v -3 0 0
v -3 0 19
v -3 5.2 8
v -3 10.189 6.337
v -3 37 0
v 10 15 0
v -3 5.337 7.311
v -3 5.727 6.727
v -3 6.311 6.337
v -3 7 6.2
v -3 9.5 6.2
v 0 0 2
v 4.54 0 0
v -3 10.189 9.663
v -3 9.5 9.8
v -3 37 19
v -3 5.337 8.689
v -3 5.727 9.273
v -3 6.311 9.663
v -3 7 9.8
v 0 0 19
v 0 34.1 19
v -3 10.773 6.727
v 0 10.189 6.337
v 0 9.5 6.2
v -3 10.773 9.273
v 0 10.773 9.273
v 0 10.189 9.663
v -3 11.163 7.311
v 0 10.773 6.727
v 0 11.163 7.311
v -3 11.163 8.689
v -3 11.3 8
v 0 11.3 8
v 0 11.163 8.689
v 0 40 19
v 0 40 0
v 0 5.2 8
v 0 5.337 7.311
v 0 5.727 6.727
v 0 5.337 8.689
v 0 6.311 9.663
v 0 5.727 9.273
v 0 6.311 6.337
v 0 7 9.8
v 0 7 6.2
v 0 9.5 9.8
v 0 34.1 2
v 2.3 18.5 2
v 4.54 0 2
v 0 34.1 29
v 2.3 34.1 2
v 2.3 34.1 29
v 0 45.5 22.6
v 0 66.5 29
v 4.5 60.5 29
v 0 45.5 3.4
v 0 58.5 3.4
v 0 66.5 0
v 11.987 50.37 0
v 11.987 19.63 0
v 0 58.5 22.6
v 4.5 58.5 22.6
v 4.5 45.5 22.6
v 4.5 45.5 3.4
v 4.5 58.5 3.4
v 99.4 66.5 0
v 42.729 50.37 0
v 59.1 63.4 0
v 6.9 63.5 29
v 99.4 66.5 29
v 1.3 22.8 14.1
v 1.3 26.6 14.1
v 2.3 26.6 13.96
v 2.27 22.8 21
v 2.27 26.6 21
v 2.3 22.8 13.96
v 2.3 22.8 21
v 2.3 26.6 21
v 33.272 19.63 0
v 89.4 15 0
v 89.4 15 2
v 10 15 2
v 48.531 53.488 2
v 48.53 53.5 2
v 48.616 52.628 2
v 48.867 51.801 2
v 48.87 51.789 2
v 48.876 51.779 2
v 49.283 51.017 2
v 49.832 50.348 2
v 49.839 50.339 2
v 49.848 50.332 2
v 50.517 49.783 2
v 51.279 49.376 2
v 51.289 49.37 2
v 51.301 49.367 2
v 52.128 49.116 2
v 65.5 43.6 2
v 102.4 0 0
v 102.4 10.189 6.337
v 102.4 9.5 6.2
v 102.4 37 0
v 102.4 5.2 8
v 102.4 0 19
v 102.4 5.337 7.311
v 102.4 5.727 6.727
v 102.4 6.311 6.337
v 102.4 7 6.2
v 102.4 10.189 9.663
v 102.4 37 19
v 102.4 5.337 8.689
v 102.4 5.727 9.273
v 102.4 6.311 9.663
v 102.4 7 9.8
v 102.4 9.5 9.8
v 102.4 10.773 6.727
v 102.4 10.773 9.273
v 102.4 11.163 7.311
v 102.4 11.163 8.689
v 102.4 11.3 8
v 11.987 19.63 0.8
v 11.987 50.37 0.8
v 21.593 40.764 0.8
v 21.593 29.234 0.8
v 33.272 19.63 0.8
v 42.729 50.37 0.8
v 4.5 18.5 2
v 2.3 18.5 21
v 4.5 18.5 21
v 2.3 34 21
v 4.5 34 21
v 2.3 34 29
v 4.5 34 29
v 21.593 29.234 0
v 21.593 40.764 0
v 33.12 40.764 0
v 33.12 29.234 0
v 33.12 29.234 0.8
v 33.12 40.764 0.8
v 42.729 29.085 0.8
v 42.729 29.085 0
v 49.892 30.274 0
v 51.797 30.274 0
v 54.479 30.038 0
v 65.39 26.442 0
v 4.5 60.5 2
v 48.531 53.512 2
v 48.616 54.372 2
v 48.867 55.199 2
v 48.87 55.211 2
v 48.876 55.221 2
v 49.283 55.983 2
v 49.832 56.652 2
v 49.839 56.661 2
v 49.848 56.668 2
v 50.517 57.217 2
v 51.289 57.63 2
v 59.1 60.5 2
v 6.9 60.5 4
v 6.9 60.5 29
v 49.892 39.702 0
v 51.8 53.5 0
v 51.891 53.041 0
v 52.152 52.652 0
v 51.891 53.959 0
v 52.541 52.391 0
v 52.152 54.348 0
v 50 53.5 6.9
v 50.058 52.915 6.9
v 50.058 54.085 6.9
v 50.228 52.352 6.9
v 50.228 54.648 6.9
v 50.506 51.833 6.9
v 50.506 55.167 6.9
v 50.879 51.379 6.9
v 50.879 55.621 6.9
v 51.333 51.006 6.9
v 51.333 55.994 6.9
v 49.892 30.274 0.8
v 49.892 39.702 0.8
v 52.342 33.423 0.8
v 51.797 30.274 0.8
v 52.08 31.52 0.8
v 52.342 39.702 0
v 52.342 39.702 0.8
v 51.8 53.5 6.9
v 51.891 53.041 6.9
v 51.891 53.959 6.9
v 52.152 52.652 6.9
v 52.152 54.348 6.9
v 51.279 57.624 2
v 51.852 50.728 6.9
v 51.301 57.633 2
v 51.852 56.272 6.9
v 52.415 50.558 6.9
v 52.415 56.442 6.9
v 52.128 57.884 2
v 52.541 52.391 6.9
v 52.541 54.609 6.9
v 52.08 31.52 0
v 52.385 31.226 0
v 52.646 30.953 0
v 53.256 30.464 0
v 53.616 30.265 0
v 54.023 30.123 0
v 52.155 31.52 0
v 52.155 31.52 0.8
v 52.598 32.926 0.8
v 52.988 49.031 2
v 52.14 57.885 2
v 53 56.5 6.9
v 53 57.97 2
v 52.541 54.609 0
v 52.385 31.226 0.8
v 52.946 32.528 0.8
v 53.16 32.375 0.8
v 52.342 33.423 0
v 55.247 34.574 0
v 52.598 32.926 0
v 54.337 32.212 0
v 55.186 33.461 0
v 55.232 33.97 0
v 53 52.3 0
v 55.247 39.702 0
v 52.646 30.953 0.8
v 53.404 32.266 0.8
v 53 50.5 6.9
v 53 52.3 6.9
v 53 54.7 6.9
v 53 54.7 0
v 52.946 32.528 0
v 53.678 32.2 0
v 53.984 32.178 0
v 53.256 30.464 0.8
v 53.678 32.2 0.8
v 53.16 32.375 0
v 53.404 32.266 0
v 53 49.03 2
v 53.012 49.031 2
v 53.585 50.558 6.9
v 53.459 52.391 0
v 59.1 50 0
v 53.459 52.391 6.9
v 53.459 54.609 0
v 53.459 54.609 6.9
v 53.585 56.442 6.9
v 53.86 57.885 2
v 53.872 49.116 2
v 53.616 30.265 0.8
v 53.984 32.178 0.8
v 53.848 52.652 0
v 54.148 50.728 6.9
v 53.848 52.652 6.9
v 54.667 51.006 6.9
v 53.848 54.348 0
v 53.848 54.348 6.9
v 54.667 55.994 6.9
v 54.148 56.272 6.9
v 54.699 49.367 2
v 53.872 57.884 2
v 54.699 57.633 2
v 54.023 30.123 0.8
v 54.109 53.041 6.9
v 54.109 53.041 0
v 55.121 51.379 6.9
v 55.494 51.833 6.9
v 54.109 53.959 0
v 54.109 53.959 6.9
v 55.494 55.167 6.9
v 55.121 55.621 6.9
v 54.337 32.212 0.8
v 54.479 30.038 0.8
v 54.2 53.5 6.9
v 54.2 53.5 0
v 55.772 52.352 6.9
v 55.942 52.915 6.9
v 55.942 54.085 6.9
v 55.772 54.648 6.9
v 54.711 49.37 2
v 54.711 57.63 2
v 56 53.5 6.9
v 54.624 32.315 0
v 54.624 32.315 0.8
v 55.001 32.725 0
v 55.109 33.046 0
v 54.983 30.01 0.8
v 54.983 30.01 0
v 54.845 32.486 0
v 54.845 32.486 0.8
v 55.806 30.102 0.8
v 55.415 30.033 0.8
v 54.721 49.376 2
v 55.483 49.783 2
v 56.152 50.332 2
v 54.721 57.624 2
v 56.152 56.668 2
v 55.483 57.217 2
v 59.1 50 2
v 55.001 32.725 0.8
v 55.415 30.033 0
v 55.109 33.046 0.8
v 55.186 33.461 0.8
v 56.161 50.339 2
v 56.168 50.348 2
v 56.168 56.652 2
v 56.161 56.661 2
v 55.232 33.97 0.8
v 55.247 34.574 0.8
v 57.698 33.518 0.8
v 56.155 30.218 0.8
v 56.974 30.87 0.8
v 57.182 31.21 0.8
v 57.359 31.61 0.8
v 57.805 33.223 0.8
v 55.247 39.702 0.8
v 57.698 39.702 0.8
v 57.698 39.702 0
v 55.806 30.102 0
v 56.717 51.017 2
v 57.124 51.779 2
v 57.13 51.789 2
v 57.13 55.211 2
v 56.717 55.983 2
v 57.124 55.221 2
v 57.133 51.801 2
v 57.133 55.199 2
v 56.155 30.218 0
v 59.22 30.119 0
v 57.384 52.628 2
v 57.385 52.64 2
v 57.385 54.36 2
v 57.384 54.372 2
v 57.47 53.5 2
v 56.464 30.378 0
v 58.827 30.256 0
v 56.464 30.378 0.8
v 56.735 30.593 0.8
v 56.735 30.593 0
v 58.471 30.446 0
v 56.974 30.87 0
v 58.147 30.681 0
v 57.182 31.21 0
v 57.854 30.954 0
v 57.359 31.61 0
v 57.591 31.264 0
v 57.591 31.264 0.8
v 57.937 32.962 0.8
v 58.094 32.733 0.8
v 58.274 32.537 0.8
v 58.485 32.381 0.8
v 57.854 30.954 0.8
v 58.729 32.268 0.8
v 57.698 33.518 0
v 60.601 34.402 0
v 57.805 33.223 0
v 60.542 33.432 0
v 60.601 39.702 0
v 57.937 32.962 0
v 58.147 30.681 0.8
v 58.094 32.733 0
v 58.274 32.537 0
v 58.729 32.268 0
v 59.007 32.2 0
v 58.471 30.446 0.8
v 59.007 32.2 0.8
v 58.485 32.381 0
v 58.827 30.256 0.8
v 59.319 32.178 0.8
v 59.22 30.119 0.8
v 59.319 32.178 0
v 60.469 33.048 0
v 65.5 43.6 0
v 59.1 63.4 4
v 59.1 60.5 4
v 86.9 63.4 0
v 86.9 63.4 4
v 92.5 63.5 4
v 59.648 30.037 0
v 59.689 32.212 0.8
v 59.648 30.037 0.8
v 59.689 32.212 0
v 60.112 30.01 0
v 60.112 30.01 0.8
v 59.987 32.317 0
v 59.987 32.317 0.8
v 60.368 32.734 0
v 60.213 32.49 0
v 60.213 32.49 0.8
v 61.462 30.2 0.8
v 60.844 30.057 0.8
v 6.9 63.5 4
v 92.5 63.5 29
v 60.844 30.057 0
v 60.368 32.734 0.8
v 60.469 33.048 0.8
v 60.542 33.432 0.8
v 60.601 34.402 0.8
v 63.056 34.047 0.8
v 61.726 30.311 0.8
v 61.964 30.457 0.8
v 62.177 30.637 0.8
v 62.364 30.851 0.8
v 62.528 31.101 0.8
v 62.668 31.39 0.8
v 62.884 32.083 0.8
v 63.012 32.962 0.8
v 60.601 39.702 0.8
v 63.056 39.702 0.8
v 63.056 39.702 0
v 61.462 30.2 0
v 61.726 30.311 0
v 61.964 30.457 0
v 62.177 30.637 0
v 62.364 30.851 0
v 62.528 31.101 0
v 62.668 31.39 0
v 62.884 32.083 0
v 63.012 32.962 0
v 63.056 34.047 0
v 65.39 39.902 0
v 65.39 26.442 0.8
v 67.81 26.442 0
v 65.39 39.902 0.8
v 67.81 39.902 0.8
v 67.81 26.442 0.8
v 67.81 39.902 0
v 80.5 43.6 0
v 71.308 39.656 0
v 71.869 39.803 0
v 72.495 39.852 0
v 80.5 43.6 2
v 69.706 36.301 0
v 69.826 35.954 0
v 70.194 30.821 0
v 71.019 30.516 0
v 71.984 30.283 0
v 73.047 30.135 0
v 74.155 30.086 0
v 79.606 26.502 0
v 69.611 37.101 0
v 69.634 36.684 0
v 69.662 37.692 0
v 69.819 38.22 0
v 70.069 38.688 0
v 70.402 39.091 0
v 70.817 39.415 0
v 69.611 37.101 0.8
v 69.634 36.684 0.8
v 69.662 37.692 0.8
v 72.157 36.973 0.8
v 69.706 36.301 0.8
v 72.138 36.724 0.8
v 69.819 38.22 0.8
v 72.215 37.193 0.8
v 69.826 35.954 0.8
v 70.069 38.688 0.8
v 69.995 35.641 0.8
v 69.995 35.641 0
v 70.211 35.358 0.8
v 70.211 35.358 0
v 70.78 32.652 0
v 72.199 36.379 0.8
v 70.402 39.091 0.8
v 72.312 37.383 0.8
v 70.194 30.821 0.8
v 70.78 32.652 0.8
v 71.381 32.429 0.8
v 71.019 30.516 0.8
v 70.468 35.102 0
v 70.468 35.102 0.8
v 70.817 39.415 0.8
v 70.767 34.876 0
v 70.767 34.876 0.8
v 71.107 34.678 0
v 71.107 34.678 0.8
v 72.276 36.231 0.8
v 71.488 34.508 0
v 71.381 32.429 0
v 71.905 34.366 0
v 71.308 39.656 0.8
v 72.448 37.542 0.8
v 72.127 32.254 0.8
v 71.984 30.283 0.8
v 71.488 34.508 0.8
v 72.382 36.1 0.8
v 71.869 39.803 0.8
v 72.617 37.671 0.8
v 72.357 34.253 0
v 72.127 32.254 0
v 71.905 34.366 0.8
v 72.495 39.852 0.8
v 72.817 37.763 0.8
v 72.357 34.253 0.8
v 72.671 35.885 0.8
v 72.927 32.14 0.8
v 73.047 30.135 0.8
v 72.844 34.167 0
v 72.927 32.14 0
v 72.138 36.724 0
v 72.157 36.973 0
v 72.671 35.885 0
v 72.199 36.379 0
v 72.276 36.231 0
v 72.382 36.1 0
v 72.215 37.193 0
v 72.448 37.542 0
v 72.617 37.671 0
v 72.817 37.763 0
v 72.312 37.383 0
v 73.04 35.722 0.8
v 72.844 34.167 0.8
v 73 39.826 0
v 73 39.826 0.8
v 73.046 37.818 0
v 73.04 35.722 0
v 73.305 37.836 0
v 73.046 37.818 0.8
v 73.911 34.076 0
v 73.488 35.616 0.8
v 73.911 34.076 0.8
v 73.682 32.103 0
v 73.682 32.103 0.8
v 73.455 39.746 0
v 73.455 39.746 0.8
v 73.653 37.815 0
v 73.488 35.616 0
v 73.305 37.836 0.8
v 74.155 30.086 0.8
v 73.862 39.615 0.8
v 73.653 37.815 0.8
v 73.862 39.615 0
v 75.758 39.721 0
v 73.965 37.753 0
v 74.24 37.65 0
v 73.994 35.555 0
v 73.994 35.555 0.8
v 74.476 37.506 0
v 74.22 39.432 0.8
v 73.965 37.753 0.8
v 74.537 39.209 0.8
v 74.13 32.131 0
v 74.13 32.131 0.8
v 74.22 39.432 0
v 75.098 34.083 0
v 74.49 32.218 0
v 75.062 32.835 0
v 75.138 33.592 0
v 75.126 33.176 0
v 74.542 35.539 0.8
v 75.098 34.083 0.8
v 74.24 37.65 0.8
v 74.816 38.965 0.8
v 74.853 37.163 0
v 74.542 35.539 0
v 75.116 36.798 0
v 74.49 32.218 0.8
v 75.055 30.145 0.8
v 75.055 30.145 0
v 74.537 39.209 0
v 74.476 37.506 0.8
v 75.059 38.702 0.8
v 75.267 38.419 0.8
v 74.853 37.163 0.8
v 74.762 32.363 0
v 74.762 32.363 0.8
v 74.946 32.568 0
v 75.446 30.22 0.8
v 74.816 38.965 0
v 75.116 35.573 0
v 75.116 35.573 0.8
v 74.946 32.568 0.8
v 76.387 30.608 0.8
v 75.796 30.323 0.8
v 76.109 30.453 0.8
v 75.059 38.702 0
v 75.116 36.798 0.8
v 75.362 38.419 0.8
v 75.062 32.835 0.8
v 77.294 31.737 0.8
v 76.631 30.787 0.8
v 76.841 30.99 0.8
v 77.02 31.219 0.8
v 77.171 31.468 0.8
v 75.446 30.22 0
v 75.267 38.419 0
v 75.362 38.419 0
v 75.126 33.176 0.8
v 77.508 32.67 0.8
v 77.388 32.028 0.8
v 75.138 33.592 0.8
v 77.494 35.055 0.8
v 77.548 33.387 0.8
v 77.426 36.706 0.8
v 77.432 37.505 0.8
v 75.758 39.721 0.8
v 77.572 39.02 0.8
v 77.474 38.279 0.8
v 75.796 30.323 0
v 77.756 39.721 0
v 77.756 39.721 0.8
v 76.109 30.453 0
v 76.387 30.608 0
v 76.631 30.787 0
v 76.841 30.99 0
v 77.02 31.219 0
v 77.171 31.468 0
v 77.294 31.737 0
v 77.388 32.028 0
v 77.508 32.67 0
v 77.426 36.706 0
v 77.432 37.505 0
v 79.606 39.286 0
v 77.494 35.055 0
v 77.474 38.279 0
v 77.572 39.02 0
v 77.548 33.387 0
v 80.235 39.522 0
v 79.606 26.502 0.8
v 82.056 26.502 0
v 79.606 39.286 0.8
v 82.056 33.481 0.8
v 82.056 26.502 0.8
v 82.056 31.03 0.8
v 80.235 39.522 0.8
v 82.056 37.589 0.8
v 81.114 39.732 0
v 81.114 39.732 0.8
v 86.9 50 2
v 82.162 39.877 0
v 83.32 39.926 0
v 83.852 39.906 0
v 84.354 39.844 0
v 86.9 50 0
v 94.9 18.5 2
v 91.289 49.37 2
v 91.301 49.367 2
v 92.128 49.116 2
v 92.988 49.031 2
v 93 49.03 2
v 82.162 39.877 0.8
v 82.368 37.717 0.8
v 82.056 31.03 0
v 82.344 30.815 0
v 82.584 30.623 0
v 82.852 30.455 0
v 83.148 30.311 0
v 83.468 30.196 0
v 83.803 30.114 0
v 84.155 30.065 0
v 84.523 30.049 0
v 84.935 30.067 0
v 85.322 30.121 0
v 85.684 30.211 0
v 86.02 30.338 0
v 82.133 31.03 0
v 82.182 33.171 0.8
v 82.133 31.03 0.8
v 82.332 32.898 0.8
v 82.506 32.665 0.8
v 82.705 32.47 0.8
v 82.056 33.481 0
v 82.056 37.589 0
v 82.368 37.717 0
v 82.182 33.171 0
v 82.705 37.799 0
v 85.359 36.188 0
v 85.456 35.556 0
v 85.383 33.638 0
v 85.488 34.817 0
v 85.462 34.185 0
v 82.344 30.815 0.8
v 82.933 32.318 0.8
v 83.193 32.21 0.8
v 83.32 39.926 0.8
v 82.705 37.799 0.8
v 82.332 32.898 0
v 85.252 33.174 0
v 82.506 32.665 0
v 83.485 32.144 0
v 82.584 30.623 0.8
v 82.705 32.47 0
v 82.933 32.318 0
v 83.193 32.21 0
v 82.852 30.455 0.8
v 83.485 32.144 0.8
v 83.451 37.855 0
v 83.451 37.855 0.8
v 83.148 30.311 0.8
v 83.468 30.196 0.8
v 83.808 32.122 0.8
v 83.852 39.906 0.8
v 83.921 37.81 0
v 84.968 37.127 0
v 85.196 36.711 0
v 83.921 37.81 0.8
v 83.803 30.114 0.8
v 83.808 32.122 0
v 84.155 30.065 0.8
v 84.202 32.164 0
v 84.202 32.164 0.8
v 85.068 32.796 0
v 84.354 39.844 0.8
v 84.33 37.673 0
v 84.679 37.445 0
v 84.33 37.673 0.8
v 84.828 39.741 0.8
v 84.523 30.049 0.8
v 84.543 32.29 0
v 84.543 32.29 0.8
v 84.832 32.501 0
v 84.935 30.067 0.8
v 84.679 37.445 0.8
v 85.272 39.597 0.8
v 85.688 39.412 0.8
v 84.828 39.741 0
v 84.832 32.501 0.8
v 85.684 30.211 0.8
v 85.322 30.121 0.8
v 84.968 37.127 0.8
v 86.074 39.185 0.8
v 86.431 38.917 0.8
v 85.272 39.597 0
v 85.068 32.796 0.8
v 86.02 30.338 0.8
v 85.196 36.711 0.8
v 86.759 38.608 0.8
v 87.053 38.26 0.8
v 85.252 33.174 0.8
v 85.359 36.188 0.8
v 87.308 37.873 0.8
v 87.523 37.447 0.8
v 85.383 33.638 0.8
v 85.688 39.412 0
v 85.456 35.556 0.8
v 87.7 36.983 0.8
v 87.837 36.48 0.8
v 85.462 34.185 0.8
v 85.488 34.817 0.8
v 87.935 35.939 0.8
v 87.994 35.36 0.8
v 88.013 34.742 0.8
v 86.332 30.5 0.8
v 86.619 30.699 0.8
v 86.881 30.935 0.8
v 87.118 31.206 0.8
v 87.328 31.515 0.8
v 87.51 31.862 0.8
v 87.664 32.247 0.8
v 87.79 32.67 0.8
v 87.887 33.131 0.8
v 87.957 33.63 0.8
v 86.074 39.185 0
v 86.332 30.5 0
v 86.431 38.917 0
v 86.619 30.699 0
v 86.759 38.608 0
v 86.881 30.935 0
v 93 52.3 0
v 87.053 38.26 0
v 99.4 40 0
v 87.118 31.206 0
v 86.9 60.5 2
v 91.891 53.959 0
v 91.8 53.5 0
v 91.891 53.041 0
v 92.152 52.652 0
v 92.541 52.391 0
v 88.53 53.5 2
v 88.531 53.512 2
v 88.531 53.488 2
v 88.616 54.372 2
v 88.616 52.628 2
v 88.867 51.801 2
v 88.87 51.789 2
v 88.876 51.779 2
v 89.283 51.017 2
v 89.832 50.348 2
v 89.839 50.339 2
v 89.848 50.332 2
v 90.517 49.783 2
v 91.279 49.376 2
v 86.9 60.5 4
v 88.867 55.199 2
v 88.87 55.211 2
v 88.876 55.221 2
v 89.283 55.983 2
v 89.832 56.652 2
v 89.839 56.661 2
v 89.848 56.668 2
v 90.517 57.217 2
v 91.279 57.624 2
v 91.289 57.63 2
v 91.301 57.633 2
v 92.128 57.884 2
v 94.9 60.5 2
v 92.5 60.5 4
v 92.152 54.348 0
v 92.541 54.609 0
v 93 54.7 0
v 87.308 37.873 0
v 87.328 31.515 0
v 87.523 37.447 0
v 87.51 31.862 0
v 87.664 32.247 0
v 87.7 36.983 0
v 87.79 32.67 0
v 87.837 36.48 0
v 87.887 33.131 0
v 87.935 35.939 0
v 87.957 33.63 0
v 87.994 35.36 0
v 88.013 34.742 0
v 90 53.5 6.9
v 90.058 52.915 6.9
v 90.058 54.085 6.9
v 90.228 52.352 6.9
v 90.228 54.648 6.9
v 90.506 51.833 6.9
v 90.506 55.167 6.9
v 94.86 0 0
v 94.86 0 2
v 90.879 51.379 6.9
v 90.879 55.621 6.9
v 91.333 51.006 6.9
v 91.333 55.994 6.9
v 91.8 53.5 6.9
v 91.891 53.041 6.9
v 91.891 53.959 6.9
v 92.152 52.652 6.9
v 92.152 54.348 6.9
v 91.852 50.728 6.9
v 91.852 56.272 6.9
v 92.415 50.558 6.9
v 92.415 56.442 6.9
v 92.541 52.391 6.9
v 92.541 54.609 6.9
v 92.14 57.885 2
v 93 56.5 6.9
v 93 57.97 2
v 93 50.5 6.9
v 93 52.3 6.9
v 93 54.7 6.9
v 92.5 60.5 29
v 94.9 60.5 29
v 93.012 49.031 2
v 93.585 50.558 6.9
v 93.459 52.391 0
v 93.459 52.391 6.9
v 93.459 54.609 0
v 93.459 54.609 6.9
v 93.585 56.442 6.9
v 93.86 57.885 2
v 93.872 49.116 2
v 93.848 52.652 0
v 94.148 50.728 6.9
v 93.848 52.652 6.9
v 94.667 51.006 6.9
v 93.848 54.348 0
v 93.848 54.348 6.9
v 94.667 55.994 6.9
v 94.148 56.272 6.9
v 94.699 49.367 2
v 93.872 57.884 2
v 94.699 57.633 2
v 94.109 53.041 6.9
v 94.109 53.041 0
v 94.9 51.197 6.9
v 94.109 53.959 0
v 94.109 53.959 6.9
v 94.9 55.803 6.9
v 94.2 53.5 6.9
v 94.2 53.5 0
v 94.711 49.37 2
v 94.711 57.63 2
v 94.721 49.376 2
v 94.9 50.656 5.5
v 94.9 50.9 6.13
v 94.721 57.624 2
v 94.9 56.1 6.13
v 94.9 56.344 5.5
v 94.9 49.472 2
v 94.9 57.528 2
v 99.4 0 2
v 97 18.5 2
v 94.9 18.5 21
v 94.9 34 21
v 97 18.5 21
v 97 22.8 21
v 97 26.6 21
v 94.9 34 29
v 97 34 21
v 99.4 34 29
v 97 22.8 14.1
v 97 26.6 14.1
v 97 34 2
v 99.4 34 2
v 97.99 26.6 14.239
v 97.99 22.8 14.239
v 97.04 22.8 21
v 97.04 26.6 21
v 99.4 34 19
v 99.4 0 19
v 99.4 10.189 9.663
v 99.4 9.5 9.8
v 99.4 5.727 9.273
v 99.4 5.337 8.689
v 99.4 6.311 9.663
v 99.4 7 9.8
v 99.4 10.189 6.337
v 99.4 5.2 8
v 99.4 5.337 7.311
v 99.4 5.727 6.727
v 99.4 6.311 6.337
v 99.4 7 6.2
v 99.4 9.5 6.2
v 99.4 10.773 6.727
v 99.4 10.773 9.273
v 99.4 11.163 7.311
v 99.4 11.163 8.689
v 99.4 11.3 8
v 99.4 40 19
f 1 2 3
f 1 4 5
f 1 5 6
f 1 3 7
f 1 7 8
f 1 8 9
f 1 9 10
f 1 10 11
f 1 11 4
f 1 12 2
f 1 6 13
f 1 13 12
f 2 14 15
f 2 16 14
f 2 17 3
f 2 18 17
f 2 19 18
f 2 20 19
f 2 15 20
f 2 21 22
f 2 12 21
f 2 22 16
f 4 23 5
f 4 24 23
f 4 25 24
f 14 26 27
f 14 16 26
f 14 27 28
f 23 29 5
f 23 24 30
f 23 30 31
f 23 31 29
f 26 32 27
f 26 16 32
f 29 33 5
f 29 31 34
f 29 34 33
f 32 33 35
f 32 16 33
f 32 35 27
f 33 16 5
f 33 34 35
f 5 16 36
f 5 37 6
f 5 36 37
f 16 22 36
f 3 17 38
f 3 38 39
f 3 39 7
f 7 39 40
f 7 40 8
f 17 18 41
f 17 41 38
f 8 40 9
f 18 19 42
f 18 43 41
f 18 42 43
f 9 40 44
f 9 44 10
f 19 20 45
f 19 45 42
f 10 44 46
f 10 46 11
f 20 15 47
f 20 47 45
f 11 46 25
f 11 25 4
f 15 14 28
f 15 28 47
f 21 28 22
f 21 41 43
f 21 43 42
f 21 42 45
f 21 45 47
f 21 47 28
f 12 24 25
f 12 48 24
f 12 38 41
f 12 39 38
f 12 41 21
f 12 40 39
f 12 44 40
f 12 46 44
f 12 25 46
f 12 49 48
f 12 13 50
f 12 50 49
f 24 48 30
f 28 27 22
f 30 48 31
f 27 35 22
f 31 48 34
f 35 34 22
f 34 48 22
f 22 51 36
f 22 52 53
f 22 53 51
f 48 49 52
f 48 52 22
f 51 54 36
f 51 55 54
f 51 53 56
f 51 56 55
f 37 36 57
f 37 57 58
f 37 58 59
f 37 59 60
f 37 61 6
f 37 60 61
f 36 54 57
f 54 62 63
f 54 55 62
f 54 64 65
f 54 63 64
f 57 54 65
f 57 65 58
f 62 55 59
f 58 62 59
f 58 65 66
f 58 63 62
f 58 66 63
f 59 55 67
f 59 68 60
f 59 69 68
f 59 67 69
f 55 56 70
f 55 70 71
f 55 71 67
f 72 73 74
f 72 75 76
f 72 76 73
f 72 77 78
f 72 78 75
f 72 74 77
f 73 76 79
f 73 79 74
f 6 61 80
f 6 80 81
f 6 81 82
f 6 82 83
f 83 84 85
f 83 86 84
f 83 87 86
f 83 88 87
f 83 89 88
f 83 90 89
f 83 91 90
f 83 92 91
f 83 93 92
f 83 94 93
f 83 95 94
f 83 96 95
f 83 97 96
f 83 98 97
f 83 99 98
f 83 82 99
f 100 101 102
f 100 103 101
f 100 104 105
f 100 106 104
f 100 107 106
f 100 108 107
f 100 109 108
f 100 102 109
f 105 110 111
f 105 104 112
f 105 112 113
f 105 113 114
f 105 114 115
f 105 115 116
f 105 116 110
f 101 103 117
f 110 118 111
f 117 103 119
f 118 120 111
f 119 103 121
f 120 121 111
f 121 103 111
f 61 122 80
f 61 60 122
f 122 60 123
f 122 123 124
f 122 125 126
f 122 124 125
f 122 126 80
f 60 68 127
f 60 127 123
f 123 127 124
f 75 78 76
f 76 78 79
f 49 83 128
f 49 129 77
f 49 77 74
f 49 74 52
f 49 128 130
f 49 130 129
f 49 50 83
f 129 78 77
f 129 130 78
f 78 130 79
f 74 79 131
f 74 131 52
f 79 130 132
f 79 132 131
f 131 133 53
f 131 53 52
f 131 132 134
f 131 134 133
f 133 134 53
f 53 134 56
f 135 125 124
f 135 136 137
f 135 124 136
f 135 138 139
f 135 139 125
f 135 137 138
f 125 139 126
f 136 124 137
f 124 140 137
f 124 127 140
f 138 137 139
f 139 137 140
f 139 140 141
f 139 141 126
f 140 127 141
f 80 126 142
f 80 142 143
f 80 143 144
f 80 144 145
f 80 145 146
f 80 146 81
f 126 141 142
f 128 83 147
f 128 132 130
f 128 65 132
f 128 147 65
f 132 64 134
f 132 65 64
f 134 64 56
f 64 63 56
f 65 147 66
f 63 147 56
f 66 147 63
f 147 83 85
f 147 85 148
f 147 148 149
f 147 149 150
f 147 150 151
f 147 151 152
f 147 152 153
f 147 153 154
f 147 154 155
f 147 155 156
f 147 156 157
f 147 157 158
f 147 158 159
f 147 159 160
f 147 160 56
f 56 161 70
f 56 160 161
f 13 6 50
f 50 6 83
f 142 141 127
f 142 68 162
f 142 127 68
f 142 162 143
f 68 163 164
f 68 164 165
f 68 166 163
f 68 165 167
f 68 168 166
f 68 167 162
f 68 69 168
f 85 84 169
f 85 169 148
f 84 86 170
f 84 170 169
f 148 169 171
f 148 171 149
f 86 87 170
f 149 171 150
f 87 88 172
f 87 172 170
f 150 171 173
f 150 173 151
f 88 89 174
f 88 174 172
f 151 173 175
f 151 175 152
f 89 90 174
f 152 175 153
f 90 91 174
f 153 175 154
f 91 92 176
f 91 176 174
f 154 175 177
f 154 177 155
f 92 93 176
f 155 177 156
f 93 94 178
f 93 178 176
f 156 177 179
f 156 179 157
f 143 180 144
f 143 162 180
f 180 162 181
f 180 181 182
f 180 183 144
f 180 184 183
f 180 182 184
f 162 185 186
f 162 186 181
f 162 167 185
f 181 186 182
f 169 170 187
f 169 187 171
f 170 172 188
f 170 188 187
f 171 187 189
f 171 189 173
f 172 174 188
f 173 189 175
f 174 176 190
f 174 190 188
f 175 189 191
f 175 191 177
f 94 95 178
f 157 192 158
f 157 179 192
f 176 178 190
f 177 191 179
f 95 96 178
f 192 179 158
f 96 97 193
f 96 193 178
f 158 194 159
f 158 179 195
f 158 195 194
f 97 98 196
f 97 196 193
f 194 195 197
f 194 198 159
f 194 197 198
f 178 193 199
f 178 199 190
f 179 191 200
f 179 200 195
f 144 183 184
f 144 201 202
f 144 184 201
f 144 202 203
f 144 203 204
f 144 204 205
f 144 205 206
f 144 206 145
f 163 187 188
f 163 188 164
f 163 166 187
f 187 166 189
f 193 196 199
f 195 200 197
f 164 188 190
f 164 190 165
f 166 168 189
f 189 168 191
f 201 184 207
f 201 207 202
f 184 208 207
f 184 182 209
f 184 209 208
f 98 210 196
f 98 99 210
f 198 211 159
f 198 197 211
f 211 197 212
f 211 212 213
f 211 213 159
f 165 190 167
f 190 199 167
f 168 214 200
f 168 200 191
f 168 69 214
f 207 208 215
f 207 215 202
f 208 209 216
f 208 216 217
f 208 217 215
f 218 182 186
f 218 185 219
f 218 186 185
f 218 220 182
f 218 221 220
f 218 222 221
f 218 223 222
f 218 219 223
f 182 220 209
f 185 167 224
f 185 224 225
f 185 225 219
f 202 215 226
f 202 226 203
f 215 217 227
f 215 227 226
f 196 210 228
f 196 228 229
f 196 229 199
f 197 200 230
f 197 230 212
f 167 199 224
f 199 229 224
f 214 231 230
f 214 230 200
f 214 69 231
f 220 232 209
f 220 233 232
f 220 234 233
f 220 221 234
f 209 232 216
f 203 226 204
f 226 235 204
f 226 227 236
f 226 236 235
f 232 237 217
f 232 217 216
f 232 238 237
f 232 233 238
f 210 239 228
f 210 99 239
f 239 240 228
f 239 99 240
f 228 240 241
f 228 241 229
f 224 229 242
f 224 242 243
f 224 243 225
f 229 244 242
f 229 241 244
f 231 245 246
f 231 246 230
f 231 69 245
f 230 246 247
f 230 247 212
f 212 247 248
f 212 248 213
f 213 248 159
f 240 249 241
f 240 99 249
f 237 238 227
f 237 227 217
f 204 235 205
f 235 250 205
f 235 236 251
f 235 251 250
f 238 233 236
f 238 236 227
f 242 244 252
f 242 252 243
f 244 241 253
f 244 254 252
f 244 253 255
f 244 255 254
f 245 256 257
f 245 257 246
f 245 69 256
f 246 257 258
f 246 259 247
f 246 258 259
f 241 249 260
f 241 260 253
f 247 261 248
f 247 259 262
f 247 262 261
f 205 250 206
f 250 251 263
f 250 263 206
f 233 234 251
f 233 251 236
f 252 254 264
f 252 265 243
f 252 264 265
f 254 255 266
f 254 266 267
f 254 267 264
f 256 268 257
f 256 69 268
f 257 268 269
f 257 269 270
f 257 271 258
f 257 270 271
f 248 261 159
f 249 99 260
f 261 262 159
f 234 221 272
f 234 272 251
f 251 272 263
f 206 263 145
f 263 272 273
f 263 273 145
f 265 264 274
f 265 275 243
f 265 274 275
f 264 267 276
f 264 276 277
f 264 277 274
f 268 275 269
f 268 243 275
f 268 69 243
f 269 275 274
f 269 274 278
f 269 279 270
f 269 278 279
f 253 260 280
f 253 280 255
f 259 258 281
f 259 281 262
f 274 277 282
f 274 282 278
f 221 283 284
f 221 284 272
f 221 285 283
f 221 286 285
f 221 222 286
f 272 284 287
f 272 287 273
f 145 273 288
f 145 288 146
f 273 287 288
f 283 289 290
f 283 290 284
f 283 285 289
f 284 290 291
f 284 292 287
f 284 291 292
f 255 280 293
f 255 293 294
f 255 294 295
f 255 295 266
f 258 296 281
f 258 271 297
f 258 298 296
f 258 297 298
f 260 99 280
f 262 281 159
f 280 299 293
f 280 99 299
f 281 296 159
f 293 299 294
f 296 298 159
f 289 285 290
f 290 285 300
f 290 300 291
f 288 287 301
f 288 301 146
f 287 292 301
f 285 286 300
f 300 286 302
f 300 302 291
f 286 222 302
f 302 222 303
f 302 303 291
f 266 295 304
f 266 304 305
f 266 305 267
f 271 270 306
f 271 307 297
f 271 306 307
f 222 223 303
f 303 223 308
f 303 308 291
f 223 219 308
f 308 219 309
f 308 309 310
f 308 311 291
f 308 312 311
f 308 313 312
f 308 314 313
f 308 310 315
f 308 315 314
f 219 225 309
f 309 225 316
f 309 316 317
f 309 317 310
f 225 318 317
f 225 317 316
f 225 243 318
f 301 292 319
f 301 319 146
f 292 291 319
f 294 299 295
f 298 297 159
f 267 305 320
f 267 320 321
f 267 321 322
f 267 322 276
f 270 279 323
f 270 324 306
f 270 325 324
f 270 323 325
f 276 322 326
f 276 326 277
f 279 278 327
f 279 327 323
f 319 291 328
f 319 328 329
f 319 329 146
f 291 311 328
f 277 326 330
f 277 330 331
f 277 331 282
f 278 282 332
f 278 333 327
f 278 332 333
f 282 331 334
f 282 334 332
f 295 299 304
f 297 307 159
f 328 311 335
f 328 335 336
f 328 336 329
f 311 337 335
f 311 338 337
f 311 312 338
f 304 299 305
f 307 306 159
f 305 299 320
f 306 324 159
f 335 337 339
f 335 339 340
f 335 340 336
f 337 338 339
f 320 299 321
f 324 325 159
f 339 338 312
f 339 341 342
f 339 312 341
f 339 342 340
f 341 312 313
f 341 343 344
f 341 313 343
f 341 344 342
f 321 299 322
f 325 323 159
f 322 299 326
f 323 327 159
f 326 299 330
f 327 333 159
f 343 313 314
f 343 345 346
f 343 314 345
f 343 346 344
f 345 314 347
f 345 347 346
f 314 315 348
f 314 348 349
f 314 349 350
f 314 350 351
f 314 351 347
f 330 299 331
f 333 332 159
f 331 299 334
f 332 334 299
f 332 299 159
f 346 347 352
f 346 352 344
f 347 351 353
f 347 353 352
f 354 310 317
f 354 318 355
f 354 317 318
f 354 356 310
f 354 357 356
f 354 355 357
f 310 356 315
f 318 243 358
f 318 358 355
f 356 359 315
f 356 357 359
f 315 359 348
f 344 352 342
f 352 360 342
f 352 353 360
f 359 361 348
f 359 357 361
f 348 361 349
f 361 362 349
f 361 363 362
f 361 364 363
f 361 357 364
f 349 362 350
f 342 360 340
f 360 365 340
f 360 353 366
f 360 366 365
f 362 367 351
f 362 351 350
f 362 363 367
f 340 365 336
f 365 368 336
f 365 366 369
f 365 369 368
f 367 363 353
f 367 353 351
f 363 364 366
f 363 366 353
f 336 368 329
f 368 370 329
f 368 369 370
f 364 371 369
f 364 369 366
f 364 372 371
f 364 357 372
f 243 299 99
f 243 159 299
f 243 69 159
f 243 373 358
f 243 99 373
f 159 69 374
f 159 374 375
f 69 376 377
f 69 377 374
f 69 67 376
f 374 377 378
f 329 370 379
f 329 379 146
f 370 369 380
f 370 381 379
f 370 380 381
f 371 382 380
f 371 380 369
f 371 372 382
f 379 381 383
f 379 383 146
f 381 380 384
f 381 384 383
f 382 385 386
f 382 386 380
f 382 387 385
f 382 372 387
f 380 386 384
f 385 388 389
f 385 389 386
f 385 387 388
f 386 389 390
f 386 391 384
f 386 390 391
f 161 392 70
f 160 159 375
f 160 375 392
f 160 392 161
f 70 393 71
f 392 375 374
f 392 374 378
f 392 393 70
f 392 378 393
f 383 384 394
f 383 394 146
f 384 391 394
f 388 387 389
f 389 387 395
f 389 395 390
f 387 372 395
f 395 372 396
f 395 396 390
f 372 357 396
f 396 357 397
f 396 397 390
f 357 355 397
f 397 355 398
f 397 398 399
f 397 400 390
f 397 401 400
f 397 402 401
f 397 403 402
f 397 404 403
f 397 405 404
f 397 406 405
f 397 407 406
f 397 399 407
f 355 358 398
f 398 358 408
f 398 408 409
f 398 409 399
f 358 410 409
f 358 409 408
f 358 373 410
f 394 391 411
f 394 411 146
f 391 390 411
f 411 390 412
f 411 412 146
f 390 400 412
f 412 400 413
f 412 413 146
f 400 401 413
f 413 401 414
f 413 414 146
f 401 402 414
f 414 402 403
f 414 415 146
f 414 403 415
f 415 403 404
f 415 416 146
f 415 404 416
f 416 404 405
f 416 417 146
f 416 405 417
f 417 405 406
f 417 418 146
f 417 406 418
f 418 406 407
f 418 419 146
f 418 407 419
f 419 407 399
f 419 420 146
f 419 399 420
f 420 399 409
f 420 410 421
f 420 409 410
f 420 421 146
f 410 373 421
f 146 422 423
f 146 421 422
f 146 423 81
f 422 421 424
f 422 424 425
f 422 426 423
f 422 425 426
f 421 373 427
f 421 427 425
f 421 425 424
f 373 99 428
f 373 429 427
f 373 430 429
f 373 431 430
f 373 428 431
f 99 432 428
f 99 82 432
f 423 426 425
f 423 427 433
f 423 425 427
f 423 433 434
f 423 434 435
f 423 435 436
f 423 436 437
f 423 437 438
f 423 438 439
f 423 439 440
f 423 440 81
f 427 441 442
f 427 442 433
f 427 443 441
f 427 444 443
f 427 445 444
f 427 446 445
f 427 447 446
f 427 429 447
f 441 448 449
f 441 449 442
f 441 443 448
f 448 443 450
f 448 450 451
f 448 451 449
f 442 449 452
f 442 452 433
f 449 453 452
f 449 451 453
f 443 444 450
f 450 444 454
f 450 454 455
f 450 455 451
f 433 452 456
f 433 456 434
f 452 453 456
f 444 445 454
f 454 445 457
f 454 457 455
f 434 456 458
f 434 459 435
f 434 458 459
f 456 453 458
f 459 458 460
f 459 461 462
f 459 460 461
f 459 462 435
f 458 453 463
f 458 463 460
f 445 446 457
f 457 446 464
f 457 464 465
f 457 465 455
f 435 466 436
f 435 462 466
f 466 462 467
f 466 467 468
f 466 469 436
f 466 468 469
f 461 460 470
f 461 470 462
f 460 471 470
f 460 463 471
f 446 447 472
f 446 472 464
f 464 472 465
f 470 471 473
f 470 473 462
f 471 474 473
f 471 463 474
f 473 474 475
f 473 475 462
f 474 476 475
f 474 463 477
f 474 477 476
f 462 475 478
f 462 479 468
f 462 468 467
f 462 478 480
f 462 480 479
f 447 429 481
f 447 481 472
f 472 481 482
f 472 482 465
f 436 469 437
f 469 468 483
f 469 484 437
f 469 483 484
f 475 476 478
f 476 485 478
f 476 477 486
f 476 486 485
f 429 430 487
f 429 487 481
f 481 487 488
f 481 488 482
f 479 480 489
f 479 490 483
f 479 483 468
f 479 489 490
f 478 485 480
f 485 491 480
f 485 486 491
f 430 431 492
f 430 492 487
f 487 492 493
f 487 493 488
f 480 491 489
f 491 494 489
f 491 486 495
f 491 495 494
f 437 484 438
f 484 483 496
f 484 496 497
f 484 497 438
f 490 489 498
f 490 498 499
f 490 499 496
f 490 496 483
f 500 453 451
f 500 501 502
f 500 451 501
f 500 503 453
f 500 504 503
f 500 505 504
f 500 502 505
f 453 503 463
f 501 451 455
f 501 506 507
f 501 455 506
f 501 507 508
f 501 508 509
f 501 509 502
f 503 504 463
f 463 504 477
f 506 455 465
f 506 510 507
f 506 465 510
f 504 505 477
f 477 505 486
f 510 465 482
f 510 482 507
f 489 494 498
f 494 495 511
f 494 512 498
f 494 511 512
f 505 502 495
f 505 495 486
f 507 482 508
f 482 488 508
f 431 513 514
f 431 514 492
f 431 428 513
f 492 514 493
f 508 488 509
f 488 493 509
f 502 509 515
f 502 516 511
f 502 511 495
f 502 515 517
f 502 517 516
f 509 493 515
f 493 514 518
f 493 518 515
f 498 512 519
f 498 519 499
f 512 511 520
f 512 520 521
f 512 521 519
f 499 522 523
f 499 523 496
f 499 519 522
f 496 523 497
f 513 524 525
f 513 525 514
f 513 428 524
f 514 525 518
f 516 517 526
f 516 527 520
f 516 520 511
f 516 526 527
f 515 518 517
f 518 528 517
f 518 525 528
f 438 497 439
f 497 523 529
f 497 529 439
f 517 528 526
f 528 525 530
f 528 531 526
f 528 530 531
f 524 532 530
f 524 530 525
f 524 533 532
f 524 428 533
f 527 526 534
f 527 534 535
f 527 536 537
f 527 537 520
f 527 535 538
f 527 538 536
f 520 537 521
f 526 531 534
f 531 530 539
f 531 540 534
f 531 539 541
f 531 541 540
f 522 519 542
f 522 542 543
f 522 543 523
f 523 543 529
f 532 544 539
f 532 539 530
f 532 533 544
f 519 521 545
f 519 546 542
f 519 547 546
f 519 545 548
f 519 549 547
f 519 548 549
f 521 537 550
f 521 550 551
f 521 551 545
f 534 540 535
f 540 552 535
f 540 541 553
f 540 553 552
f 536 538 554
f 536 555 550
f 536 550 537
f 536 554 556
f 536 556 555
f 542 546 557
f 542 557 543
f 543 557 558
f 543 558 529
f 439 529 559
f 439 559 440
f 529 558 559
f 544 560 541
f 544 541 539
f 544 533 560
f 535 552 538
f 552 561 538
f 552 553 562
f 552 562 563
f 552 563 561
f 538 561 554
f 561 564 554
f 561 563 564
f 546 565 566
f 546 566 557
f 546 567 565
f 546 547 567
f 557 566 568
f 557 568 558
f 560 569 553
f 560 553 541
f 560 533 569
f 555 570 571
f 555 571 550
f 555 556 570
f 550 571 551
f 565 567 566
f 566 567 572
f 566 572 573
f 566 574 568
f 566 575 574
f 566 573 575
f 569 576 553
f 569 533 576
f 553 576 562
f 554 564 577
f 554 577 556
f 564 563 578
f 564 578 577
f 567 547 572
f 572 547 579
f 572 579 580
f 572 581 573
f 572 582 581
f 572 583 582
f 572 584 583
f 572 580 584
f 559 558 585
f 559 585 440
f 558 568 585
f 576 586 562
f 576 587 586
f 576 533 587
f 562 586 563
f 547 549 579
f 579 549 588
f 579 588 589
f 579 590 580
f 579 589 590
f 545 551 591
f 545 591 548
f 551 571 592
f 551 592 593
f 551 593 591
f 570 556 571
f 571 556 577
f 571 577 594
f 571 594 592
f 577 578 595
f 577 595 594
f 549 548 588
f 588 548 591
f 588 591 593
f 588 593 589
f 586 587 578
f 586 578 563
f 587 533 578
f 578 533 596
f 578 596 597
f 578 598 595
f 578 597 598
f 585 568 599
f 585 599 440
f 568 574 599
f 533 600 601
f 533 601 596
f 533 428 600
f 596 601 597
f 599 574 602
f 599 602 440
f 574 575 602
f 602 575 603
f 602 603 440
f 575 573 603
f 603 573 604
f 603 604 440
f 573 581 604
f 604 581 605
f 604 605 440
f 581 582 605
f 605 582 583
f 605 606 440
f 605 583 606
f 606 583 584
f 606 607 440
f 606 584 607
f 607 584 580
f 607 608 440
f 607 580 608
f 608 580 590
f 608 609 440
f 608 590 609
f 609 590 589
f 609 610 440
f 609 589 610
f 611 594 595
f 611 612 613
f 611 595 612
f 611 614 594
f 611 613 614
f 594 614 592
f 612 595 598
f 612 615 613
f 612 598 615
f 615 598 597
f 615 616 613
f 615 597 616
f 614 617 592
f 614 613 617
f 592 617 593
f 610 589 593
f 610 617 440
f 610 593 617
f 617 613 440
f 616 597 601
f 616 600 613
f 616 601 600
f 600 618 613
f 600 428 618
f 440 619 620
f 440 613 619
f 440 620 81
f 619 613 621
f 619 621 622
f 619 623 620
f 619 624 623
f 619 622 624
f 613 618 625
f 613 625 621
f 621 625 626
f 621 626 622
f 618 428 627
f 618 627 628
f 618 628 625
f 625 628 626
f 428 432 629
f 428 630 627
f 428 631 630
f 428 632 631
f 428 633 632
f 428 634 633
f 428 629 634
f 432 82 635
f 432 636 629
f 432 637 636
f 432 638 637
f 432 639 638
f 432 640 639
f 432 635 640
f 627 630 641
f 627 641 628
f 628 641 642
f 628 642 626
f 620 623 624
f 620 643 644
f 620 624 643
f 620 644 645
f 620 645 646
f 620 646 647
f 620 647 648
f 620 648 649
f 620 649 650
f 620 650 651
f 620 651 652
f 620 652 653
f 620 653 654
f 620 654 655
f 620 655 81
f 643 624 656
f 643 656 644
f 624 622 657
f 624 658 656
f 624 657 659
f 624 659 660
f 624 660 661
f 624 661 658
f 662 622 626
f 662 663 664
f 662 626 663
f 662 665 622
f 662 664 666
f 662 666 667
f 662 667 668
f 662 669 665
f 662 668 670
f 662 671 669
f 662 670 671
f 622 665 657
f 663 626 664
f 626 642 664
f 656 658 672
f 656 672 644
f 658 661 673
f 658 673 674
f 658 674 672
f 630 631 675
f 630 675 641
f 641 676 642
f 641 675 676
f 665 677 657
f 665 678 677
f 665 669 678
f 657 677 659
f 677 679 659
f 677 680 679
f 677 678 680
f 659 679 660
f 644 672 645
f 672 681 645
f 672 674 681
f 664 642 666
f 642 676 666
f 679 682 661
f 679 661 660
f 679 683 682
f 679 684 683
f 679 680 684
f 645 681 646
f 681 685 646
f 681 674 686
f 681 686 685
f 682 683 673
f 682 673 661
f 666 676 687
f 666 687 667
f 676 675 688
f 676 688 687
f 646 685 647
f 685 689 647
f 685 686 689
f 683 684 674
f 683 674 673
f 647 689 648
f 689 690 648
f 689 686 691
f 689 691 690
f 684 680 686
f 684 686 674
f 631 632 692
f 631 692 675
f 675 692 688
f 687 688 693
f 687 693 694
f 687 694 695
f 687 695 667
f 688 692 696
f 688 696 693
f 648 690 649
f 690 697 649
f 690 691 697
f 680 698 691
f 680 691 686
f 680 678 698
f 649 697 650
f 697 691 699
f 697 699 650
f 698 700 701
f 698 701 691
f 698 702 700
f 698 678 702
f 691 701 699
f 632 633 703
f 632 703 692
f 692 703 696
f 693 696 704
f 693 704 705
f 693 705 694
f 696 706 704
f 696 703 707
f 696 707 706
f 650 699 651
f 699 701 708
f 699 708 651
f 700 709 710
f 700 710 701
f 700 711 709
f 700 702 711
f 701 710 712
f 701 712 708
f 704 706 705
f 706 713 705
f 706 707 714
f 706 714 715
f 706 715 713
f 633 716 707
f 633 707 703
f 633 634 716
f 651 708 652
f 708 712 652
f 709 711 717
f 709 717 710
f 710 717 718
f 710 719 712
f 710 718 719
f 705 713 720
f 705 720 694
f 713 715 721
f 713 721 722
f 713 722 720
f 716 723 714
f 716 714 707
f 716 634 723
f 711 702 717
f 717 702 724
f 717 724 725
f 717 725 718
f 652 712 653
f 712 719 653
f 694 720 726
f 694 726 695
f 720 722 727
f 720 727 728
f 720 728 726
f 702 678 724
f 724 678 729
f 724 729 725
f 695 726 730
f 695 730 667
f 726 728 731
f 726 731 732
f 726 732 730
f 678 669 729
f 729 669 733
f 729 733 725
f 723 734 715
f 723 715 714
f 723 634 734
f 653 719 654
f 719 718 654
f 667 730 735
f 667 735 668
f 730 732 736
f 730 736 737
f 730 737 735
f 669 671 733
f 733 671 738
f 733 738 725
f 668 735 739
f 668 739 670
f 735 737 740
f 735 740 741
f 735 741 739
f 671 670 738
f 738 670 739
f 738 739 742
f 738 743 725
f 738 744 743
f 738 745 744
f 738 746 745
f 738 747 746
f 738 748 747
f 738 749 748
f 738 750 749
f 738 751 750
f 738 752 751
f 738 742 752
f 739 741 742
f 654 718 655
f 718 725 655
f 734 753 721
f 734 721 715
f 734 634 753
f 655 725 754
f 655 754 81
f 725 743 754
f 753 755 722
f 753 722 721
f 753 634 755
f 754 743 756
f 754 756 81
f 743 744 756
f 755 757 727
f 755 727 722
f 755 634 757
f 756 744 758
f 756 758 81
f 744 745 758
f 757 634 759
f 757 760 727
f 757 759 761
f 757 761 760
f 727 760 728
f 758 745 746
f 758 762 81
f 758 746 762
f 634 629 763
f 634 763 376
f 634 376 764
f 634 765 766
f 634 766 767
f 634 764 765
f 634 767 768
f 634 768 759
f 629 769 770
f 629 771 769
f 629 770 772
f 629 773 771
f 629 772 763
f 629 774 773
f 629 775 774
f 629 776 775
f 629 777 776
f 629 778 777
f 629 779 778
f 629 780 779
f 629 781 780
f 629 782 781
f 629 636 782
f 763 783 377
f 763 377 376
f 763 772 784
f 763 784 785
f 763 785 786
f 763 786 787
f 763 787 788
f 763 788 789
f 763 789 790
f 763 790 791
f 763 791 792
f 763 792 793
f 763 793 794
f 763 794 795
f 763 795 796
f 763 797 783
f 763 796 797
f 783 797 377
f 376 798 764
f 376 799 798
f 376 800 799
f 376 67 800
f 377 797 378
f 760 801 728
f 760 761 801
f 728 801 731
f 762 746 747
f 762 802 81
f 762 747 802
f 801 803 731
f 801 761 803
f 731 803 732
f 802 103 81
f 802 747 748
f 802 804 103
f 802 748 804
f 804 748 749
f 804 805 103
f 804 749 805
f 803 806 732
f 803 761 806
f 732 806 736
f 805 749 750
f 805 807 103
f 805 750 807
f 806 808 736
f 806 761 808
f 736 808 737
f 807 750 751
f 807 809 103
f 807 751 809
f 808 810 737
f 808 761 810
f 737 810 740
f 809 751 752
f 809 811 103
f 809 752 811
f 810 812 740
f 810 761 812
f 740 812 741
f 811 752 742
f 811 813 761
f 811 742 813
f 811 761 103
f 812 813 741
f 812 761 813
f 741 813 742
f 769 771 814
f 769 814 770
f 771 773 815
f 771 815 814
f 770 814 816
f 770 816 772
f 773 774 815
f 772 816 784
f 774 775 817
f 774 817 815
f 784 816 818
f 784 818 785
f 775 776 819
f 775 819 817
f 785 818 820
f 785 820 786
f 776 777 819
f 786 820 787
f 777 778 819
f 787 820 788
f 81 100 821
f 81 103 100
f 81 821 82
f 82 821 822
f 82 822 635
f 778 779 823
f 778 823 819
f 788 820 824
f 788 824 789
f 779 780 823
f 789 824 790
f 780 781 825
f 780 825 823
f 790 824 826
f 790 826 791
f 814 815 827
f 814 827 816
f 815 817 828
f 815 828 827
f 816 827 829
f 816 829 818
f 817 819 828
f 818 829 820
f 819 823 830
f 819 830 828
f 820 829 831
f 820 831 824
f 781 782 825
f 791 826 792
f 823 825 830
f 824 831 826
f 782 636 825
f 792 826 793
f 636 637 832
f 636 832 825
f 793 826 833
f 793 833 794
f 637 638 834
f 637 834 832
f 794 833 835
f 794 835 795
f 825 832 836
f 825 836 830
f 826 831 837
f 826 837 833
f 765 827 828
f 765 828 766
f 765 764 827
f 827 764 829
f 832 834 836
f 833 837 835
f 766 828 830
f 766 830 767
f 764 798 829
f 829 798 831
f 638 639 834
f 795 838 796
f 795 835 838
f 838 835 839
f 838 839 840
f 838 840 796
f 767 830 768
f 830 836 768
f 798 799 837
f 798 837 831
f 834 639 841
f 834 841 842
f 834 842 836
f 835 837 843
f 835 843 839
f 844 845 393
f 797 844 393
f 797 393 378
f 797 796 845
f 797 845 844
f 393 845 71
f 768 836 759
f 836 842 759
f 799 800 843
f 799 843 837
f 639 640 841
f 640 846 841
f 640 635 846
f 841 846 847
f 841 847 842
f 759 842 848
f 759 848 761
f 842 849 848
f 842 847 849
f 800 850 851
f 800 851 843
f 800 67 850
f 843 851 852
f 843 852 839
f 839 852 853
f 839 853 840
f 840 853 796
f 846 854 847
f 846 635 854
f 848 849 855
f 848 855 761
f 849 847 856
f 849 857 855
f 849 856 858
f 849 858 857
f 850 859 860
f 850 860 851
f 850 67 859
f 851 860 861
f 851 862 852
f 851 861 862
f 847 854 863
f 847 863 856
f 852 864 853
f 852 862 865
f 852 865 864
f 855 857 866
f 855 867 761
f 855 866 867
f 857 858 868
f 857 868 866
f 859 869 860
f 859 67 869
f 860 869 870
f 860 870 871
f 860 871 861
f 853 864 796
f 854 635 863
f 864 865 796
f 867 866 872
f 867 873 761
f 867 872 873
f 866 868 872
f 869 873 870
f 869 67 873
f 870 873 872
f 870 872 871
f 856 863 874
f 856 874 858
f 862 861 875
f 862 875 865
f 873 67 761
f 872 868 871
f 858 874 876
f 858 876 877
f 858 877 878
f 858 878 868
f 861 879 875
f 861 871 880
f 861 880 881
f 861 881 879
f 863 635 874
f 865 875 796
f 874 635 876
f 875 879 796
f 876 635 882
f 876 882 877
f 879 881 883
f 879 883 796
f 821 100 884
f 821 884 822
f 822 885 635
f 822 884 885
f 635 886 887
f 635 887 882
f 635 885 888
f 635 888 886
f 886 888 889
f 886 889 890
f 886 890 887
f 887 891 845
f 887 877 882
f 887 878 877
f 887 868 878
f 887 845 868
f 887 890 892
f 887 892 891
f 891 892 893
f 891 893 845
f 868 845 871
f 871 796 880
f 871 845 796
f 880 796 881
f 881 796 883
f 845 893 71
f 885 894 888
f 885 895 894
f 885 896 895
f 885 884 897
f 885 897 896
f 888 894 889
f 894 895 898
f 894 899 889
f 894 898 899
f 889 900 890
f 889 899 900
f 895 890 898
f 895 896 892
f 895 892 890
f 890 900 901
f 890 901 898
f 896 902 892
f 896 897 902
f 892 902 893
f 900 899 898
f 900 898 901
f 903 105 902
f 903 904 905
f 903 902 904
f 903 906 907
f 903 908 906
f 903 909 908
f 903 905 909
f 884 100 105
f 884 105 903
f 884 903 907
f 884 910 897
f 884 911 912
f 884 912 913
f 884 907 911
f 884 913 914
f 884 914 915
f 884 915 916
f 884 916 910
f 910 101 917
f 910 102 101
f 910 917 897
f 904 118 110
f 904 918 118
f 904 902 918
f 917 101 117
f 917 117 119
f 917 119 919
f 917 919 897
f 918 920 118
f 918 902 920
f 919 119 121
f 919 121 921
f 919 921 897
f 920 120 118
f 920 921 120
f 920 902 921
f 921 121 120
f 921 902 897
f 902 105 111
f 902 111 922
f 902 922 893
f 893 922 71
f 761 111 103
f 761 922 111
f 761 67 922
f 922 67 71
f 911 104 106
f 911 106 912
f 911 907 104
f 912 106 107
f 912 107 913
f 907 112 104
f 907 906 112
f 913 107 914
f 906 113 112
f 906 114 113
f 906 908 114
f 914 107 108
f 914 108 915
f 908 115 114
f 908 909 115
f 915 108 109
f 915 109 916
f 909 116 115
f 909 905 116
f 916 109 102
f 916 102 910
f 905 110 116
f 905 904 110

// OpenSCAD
// file: ../../configuration.scad
// Layer high for the printing [mm]
layer_height = 0.20; //Slic3r->Print Settings->Layers and perimeters->Layer height

// Spare for the screws heads [mm]
spare = 0.75;
// M6 screw diameter [mm]
M6_head_diameter = 13.6+spare;
//M6_head_diameter = 10.6+spare;
//M6_head_diameter = 12+spare;

// M6 head high (for hiding it) [mm]
//M6_head_height = 4;
M6_head_height = 3.6;
//M6_head_height = 4.5;

// Screws and rods diameters
M8_smooth_rod_diameter = 8.3;
M8_smooth_rod_diameter_catch = 8.4;
// Prumer 8mm tyce
rod_8mm_d = 8.2; //pro dil z-top
M6_diameter = 6.6;
M6_dia=M6_diameter; //pro dil z-top
M6_diamater_horizontal = 6.5;
M3_diameter = 3.7;
M3_diameter_horizontal = 3.5;

//matice trapézové tyče
TRAP_diameter_externa=22; //průmer vnější 


// Nuts diameters
M3_nut_diameter = 7.0;
M3_nut_diameter_horizontal = 6.7;

// ALU profile parameters
ALU_cut_width = 7.9;
ALU_cut_width_horizontal = 7.7;

// Sirka matky do profilu (pokud neni pouzita, tak 0)
//profile_nut_width = 9.5;
profile_nut_width = 0; //pro z-top

// Motors length/depth (for axes Z and Y)
//SX17-1003LQFE (recommended for the Z axis)
motor_length = 29.5;
//SX17-1003 (recommended for the Z axis)
//motor_length = 34;
//SX17-1005
//motor_length = 40;
//SX17-0905 - this motor is too high - the Z end stop holder has to be adjusted
//motor_length = 48;

// Extrusion width [mm]
extrusion_width = 0.66; //Slic3r->Print Settings->Advanced->Default extrusion width

/// Belt type ******************************************************

// GT2 
/*belt_tooth_distance = 2;
belt_tooth_ratio = 0.5;
belt_tooth_height = 1.4;
belt_thickness = 2.3;
*/

// T2.5
belt_tooth_distance = 2.5;
belt_tooth_ratio = 0.5;


// Tloustka rohovych spojek
// 5 mm => sroub M6x14 s podlozkou
// 3 mm => sroub M6x12 s podlozkou
coupler_thickness = 3;
// main file
// RebeliX
//
// Predni kryt zdroje 12V / 240W
// GNU GPL v3
// Martin Neruda <neruda@reprap4u.cz>
// http://www.reprap4u.cz

include <../../configuration.scad>
use <../inc/MLAB_logo.scad>

sirka = 99.4;
vyska = 29;
hloubka = 45;
tloustka_steny = 2;
plech_tloustka = 2.4;

hloubka_dilu = hloubka + 2*tloustka_steny + 1.5;

module euro_konektor(){
  difference(){
    cube([27.8,19.8,10],center=true);
    translate([7.5,19.8/2,-10]) rotate([0,0,-45]) cube([20,20,20]);
	translate([-7.5,19.8/2,-10]) rotate([0,0,135]) cube([20,20,20]);
  }
  // Otvory pro srouby
  translate([20,0,0]) cylinder(r=1.2,h=20,$fn=16,center=true);
  translate([-20,0,0]) cylinder(r=1.2,h=20,$fn=16,center=true);
}


module power_base(){
	translate([0,0,0]) cube([sirka,hloubka_dilu+15,tloustka_steny]);
	translate([0,hloubka_dilu-tloustka_steny+15,0]) cube([sirka,tloustka_steny+1,vyska]);
	difference(){
	  union(){
	    translate([0,3.5+15,0]) cube([2.5+tloustka_steny,hloubka_dilu-3.5,vyska]);
	    translate([sirka-2.5-tloustka_steny,3.5+15,0]) cube([2.5+tloustka_steny,hloubka_dilu-3.5,vyska]);
	  }
	  translate([-0.1,15,0]) cube([plech_tloustka,19+0.1,vyska+1]);
	  translate([sirka-plech_tloustka,15,0]) cube([plech_tloustka+0.1,19,vyska+1]);
	}
	// Vyztuhy
	translate([1.9,hloubka_dilu+15,0]) rotate([0,0,0]) rotate([0,0,-90]) cube([5,5,vyska]);
	translate([sirka-1.9,hloubka_dilu+15,0]) rotate([0,0,180]) cube([5,5,vyska]);
	translate([1.9,hloubka_dilu-3-tloustka_steny+15,tloustka_steny]) cube([sirka-2*1.9,3,2]);
	// Nozicky na zacvaknuti do zdroje
	translate([1.3,3.5+4.3+15,tloustka_steny+12.1]) rotate([0,8,0]) cube([2,3.8,vyska-tloustka_steny-12.1]);
	translate([sirka-2.4,3.5+4.3+15,tloustka_steny+12.1]) rotate([0,-8,0]) cube([1,3.8,vyska-tloustka_steny-12.1]);
	
	translate([-3,0,0]) cube([3,40,19]);
	translate([sirka,0,0]) cube([3,40,19]);
	
	// Sloupky pro srouby EURO konektoru
	translate([73+20,hloubka_dilu+3,tloustka_steny-0.1]) rotate([0,0,0]) cylinder(r1=4.5,r2=3,h=5,$fn=32);
	translate([73-20,hloubka_dilu+3,tloustka_steny-0.1]) rotate([0,0,0]) cylinder(r1=4.5,r2=3,h=5,$fn=32);
}

module power_cuts(){
    // Vyrez pro zdroj
	translate([0,15,21]) cube([sirka,19,40]);
	// Otvor pro srouby k pridelani na zdroj
	translate([sirka/2,7,6+tloustka_steny]) rotate([0,90,0]) cylinder(r=1.8,h=200,$fn=16,center=true);
    translate([sirka/2,9.5,6+tloustka_steny]) rotate([0,90,0]) cylinder(r=1.8,h=200,$fn=16,center=true);
    translate([sirka/2,7+2.5/2,6+tloustka_steny]) cube([200,2.5,2*1.8],center=true);
    // Zkoseni
	translate([0,40,-0.1]) rotate([0,0,135]) cube([10,10,vyska]);
	translate([sirka,40,-0.1]) rotate([0,0,-45]) cube([10,10,vyska]);
	// Vyrez pro EURO konektor
	translate([73,hloubka_dilu+3,0]) rotate([180,0,0]) euro_konektor();
	// Vyrez pro vypinac
	translate([0,52,13]) rotate([0,90,0]) cube([19.2,13,10],center=true);

// MLAB logo
    translate ([50,35,0.8])  
            rotate ([180,0,0])
                scale(v = [0.4, 0.4, 0.4])
                    MLAB_logo_short();  


	// Setreni plastem
	translate([sirka/2,0,0]) rotate([0,0,-90]) cube([30,sirka-20,10],center=true);
	translate([sirka/2-(sirka-20)/2,15,-0.1]) rotate([0,0,-110]) cube([30,20,10]);
	translate([sirka/2+(sirka-20)/2,15,-0.1]) rotate([0,0,200]) cube([30,20,10]);

}

module kryt_zdroje(){
	difference(){
	  power_base();
	  power_cuts();
	}
}

kryt_zdroje();
